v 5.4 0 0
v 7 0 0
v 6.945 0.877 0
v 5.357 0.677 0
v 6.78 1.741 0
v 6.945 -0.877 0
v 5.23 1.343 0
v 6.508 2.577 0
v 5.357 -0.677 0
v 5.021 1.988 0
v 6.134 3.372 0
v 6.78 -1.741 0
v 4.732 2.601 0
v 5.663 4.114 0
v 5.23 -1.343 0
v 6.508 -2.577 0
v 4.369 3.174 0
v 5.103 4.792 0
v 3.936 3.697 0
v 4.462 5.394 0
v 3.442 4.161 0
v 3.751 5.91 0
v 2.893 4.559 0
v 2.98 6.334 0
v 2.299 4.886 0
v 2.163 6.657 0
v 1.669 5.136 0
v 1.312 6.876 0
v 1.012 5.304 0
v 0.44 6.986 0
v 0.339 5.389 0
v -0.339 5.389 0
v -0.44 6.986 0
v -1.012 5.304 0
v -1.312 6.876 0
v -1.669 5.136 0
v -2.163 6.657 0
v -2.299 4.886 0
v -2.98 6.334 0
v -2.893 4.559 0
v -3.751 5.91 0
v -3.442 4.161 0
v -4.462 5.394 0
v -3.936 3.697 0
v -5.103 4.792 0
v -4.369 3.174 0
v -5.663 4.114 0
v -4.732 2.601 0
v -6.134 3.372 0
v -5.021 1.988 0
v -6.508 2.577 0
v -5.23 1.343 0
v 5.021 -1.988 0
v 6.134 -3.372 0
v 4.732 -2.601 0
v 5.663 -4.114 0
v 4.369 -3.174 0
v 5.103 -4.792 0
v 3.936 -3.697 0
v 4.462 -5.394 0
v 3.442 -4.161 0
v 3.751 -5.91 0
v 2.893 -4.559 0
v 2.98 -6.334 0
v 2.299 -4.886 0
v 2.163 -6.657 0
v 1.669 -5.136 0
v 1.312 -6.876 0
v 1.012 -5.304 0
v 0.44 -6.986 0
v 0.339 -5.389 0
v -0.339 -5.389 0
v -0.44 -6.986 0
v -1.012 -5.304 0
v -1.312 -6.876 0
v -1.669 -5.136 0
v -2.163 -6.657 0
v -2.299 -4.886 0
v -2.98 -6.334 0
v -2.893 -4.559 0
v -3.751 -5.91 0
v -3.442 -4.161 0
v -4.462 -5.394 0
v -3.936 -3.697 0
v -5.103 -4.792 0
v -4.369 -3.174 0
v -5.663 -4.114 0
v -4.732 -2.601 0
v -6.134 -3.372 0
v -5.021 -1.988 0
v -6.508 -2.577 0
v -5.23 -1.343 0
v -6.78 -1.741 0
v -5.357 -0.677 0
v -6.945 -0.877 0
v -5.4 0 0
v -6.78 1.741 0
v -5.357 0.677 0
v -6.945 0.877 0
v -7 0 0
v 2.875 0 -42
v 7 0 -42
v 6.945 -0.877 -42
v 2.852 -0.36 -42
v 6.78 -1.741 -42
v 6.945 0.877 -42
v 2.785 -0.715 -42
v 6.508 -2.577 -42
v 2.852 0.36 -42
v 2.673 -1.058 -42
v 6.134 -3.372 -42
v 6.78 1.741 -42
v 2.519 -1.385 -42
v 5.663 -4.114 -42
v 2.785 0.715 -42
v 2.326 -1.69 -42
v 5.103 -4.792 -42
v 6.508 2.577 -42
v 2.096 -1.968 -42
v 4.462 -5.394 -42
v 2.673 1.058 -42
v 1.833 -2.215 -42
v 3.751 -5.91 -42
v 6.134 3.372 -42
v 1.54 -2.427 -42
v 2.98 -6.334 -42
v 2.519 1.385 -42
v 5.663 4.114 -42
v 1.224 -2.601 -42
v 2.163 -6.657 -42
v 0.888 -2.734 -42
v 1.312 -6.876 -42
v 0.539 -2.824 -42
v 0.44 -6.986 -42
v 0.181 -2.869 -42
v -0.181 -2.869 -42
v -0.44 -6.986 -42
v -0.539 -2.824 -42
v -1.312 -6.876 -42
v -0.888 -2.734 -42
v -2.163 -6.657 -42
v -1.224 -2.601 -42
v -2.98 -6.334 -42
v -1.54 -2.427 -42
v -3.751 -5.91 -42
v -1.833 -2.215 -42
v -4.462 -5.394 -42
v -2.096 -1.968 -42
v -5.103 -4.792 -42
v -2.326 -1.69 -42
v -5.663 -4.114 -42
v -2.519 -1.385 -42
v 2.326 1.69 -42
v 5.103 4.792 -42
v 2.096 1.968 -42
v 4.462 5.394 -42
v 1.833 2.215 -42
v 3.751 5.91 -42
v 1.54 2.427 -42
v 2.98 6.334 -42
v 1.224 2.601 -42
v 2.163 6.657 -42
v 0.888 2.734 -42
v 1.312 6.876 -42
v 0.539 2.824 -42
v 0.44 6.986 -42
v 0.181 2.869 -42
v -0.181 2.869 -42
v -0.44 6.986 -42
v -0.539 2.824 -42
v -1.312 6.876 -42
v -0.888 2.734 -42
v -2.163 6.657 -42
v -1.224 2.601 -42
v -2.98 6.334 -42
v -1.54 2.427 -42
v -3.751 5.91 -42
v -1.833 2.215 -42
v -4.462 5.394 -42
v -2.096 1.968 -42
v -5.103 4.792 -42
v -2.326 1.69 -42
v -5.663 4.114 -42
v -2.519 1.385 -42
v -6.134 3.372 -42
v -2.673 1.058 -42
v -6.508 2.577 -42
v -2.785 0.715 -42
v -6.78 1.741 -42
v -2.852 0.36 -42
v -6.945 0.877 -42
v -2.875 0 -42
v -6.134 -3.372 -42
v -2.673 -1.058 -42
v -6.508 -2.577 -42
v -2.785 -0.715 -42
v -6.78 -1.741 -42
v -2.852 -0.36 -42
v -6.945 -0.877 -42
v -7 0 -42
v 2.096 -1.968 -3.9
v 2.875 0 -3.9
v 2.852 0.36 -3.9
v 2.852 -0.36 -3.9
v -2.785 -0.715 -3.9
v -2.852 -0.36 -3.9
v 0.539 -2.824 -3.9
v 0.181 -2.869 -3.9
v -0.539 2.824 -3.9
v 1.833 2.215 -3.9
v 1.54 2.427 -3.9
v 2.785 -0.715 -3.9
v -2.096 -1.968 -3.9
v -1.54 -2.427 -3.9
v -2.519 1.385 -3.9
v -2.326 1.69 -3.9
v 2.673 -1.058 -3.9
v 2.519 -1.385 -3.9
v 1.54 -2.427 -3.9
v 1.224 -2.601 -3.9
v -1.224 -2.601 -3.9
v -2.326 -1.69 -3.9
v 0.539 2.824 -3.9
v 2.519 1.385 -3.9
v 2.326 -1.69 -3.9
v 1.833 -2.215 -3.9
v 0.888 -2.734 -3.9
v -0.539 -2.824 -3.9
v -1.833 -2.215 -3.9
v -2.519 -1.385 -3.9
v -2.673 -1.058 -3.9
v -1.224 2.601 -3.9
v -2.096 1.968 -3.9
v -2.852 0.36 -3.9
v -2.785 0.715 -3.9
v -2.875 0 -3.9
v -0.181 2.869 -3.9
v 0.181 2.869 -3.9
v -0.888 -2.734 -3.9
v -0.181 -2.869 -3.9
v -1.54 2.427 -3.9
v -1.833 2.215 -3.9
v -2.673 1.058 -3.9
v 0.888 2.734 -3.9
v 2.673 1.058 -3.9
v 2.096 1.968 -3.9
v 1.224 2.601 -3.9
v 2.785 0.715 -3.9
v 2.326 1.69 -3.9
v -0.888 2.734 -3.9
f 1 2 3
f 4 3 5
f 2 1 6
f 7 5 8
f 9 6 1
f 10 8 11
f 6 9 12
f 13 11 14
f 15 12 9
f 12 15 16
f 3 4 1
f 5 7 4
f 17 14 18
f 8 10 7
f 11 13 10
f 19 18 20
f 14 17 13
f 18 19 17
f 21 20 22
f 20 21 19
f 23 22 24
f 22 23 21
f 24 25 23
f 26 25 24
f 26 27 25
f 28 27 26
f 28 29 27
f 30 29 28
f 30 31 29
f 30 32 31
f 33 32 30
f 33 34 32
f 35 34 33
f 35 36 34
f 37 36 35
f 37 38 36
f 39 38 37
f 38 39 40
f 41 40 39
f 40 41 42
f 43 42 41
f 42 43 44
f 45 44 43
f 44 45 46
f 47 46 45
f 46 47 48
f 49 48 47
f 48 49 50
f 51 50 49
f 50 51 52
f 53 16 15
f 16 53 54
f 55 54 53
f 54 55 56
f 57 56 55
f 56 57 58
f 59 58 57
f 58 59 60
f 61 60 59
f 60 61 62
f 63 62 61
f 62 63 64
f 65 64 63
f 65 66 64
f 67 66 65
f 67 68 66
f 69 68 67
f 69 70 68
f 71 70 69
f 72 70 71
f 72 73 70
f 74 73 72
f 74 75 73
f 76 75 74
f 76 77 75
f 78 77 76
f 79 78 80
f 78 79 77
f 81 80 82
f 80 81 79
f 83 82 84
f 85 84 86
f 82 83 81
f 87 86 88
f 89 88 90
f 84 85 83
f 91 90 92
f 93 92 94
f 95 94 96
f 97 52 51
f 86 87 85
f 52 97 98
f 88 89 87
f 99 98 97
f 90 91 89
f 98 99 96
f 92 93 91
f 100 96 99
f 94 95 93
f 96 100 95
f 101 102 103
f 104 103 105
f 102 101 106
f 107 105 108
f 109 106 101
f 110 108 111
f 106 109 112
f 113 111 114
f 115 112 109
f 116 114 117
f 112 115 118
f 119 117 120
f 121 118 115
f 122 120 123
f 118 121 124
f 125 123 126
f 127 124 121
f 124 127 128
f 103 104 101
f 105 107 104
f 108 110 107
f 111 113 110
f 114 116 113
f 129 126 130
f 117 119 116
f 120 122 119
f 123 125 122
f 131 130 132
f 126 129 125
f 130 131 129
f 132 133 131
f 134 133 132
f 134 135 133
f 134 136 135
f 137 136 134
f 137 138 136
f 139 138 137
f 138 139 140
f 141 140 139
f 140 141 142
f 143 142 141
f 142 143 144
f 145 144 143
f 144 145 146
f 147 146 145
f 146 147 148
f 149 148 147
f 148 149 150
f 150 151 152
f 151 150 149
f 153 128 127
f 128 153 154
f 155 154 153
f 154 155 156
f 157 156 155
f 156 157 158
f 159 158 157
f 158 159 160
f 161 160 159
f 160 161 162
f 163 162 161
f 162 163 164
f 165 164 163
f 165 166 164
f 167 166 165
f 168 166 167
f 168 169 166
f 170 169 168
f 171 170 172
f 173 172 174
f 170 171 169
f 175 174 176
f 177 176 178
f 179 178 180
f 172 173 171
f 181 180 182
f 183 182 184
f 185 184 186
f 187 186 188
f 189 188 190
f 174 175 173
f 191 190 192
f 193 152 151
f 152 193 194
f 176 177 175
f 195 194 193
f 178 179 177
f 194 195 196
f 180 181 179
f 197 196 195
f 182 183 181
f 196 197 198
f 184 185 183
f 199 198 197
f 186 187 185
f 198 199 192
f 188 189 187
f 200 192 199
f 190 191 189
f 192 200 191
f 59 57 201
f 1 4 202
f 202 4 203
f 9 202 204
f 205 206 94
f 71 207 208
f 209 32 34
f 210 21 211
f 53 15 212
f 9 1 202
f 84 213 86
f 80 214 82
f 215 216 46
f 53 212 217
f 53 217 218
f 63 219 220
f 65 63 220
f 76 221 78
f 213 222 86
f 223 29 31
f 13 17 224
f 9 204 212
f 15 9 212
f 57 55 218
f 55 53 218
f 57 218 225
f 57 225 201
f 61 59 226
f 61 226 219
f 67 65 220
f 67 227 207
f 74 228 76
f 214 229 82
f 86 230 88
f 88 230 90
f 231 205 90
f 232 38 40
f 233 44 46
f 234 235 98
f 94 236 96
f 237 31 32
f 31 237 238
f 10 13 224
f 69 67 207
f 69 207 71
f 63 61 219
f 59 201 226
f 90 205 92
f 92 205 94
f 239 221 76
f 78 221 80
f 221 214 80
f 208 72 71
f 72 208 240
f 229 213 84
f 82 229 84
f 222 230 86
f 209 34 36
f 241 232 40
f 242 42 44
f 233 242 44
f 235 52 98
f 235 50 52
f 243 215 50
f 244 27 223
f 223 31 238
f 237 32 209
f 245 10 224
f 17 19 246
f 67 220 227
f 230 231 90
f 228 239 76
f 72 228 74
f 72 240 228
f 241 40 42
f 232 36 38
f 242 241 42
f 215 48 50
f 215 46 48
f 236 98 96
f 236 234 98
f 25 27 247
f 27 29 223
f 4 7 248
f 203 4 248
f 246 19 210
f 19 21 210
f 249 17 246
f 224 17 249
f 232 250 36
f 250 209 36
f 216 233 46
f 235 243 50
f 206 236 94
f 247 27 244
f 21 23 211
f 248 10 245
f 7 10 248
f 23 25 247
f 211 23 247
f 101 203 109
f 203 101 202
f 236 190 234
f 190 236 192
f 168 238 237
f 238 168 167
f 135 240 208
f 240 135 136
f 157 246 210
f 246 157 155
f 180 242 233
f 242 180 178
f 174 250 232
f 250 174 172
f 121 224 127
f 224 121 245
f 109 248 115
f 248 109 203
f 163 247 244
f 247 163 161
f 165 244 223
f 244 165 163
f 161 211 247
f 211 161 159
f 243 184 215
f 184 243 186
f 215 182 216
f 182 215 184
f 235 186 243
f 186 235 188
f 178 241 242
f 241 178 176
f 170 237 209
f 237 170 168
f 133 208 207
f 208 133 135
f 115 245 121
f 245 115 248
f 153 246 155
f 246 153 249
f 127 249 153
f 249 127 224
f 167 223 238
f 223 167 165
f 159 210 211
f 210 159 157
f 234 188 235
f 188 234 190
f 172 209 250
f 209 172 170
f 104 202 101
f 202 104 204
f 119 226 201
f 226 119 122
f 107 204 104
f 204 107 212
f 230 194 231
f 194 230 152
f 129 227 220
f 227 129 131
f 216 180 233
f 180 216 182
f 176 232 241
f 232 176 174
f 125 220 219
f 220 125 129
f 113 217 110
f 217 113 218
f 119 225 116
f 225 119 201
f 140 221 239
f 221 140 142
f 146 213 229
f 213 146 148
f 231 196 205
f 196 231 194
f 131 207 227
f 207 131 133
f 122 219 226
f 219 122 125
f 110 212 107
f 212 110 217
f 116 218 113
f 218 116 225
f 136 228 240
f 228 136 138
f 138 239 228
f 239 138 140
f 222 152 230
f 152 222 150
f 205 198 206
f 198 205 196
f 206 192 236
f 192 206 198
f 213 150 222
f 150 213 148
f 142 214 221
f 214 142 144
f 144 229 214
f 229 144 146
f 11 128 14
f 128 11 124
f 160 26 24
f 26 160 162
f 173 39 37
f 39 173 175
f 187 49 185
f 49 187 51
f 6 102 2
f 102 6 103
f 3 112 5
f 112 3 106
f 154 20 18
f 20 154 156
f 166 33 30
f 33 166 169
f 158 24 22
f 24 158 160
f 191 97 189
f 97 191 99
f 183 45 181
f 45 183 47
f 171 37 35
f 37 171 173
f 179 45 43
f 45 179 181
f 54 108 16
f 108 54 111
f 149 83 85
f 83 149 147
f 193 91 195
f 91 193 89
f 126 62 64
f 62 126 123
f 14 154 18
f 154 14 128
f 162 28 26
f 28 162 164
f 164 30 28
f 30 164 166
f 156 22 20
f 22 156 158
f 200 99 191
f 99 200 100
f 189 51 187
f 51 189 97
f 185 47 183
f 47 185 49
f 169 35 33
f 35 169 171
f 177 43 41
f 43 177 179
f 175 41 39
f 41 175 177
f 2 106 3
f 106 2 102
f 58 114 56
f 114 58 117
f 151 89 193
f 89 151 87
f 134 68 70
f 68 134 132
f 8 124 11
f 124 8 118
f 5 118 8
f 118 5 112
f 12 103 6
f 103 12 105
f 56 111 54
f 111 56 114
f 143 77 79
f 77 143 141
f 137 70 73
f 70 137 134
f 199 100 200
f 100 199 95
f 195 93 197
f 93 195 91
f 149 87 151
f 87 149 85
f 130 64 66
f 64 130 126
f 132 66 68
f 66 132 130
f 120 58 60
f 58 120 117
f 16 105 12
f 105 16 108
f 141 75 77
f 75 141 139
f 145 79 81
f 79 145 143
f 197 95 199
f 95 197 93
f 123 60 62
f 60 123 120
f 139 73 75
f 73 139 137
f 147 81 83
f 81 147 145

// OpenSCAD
$fn = 50;


difference() {
	union() {
		translate(v = [0, 0, -42.0000000000]) {
			cylinder(h = 42, r = 7.0000000000);
		}
		cylinder(h = 0, r = 10.0000000000);
	}
	union() {
		translate(v = [0, 0, 0]) {
			rotate(a = [0, 0, 0]) {
				difference() {
					union() {
						#translate(v = [0, 0, -42.0000000000]) {
							cylinder(h = 42, r = 2.6000000000);
						}
						#translate(v = [0, 0, -3.9000000000]) {
							cylinder(h = 3.9000000000, r = 7.0000000000, r1 = 2.8750000000, r2 = 5.4000000000);
						}
						#translate(v = [0, 0, -42.0000000000]) {
							cylinder(h = 42, r = 2.8750000000);
						}
						#translate(v = [0, 0, -42.0000000000]) {
							cylinder(h = 42, r = 2.6000000000);
						}
					}
					union();
				}
			}
		}
	}
}
